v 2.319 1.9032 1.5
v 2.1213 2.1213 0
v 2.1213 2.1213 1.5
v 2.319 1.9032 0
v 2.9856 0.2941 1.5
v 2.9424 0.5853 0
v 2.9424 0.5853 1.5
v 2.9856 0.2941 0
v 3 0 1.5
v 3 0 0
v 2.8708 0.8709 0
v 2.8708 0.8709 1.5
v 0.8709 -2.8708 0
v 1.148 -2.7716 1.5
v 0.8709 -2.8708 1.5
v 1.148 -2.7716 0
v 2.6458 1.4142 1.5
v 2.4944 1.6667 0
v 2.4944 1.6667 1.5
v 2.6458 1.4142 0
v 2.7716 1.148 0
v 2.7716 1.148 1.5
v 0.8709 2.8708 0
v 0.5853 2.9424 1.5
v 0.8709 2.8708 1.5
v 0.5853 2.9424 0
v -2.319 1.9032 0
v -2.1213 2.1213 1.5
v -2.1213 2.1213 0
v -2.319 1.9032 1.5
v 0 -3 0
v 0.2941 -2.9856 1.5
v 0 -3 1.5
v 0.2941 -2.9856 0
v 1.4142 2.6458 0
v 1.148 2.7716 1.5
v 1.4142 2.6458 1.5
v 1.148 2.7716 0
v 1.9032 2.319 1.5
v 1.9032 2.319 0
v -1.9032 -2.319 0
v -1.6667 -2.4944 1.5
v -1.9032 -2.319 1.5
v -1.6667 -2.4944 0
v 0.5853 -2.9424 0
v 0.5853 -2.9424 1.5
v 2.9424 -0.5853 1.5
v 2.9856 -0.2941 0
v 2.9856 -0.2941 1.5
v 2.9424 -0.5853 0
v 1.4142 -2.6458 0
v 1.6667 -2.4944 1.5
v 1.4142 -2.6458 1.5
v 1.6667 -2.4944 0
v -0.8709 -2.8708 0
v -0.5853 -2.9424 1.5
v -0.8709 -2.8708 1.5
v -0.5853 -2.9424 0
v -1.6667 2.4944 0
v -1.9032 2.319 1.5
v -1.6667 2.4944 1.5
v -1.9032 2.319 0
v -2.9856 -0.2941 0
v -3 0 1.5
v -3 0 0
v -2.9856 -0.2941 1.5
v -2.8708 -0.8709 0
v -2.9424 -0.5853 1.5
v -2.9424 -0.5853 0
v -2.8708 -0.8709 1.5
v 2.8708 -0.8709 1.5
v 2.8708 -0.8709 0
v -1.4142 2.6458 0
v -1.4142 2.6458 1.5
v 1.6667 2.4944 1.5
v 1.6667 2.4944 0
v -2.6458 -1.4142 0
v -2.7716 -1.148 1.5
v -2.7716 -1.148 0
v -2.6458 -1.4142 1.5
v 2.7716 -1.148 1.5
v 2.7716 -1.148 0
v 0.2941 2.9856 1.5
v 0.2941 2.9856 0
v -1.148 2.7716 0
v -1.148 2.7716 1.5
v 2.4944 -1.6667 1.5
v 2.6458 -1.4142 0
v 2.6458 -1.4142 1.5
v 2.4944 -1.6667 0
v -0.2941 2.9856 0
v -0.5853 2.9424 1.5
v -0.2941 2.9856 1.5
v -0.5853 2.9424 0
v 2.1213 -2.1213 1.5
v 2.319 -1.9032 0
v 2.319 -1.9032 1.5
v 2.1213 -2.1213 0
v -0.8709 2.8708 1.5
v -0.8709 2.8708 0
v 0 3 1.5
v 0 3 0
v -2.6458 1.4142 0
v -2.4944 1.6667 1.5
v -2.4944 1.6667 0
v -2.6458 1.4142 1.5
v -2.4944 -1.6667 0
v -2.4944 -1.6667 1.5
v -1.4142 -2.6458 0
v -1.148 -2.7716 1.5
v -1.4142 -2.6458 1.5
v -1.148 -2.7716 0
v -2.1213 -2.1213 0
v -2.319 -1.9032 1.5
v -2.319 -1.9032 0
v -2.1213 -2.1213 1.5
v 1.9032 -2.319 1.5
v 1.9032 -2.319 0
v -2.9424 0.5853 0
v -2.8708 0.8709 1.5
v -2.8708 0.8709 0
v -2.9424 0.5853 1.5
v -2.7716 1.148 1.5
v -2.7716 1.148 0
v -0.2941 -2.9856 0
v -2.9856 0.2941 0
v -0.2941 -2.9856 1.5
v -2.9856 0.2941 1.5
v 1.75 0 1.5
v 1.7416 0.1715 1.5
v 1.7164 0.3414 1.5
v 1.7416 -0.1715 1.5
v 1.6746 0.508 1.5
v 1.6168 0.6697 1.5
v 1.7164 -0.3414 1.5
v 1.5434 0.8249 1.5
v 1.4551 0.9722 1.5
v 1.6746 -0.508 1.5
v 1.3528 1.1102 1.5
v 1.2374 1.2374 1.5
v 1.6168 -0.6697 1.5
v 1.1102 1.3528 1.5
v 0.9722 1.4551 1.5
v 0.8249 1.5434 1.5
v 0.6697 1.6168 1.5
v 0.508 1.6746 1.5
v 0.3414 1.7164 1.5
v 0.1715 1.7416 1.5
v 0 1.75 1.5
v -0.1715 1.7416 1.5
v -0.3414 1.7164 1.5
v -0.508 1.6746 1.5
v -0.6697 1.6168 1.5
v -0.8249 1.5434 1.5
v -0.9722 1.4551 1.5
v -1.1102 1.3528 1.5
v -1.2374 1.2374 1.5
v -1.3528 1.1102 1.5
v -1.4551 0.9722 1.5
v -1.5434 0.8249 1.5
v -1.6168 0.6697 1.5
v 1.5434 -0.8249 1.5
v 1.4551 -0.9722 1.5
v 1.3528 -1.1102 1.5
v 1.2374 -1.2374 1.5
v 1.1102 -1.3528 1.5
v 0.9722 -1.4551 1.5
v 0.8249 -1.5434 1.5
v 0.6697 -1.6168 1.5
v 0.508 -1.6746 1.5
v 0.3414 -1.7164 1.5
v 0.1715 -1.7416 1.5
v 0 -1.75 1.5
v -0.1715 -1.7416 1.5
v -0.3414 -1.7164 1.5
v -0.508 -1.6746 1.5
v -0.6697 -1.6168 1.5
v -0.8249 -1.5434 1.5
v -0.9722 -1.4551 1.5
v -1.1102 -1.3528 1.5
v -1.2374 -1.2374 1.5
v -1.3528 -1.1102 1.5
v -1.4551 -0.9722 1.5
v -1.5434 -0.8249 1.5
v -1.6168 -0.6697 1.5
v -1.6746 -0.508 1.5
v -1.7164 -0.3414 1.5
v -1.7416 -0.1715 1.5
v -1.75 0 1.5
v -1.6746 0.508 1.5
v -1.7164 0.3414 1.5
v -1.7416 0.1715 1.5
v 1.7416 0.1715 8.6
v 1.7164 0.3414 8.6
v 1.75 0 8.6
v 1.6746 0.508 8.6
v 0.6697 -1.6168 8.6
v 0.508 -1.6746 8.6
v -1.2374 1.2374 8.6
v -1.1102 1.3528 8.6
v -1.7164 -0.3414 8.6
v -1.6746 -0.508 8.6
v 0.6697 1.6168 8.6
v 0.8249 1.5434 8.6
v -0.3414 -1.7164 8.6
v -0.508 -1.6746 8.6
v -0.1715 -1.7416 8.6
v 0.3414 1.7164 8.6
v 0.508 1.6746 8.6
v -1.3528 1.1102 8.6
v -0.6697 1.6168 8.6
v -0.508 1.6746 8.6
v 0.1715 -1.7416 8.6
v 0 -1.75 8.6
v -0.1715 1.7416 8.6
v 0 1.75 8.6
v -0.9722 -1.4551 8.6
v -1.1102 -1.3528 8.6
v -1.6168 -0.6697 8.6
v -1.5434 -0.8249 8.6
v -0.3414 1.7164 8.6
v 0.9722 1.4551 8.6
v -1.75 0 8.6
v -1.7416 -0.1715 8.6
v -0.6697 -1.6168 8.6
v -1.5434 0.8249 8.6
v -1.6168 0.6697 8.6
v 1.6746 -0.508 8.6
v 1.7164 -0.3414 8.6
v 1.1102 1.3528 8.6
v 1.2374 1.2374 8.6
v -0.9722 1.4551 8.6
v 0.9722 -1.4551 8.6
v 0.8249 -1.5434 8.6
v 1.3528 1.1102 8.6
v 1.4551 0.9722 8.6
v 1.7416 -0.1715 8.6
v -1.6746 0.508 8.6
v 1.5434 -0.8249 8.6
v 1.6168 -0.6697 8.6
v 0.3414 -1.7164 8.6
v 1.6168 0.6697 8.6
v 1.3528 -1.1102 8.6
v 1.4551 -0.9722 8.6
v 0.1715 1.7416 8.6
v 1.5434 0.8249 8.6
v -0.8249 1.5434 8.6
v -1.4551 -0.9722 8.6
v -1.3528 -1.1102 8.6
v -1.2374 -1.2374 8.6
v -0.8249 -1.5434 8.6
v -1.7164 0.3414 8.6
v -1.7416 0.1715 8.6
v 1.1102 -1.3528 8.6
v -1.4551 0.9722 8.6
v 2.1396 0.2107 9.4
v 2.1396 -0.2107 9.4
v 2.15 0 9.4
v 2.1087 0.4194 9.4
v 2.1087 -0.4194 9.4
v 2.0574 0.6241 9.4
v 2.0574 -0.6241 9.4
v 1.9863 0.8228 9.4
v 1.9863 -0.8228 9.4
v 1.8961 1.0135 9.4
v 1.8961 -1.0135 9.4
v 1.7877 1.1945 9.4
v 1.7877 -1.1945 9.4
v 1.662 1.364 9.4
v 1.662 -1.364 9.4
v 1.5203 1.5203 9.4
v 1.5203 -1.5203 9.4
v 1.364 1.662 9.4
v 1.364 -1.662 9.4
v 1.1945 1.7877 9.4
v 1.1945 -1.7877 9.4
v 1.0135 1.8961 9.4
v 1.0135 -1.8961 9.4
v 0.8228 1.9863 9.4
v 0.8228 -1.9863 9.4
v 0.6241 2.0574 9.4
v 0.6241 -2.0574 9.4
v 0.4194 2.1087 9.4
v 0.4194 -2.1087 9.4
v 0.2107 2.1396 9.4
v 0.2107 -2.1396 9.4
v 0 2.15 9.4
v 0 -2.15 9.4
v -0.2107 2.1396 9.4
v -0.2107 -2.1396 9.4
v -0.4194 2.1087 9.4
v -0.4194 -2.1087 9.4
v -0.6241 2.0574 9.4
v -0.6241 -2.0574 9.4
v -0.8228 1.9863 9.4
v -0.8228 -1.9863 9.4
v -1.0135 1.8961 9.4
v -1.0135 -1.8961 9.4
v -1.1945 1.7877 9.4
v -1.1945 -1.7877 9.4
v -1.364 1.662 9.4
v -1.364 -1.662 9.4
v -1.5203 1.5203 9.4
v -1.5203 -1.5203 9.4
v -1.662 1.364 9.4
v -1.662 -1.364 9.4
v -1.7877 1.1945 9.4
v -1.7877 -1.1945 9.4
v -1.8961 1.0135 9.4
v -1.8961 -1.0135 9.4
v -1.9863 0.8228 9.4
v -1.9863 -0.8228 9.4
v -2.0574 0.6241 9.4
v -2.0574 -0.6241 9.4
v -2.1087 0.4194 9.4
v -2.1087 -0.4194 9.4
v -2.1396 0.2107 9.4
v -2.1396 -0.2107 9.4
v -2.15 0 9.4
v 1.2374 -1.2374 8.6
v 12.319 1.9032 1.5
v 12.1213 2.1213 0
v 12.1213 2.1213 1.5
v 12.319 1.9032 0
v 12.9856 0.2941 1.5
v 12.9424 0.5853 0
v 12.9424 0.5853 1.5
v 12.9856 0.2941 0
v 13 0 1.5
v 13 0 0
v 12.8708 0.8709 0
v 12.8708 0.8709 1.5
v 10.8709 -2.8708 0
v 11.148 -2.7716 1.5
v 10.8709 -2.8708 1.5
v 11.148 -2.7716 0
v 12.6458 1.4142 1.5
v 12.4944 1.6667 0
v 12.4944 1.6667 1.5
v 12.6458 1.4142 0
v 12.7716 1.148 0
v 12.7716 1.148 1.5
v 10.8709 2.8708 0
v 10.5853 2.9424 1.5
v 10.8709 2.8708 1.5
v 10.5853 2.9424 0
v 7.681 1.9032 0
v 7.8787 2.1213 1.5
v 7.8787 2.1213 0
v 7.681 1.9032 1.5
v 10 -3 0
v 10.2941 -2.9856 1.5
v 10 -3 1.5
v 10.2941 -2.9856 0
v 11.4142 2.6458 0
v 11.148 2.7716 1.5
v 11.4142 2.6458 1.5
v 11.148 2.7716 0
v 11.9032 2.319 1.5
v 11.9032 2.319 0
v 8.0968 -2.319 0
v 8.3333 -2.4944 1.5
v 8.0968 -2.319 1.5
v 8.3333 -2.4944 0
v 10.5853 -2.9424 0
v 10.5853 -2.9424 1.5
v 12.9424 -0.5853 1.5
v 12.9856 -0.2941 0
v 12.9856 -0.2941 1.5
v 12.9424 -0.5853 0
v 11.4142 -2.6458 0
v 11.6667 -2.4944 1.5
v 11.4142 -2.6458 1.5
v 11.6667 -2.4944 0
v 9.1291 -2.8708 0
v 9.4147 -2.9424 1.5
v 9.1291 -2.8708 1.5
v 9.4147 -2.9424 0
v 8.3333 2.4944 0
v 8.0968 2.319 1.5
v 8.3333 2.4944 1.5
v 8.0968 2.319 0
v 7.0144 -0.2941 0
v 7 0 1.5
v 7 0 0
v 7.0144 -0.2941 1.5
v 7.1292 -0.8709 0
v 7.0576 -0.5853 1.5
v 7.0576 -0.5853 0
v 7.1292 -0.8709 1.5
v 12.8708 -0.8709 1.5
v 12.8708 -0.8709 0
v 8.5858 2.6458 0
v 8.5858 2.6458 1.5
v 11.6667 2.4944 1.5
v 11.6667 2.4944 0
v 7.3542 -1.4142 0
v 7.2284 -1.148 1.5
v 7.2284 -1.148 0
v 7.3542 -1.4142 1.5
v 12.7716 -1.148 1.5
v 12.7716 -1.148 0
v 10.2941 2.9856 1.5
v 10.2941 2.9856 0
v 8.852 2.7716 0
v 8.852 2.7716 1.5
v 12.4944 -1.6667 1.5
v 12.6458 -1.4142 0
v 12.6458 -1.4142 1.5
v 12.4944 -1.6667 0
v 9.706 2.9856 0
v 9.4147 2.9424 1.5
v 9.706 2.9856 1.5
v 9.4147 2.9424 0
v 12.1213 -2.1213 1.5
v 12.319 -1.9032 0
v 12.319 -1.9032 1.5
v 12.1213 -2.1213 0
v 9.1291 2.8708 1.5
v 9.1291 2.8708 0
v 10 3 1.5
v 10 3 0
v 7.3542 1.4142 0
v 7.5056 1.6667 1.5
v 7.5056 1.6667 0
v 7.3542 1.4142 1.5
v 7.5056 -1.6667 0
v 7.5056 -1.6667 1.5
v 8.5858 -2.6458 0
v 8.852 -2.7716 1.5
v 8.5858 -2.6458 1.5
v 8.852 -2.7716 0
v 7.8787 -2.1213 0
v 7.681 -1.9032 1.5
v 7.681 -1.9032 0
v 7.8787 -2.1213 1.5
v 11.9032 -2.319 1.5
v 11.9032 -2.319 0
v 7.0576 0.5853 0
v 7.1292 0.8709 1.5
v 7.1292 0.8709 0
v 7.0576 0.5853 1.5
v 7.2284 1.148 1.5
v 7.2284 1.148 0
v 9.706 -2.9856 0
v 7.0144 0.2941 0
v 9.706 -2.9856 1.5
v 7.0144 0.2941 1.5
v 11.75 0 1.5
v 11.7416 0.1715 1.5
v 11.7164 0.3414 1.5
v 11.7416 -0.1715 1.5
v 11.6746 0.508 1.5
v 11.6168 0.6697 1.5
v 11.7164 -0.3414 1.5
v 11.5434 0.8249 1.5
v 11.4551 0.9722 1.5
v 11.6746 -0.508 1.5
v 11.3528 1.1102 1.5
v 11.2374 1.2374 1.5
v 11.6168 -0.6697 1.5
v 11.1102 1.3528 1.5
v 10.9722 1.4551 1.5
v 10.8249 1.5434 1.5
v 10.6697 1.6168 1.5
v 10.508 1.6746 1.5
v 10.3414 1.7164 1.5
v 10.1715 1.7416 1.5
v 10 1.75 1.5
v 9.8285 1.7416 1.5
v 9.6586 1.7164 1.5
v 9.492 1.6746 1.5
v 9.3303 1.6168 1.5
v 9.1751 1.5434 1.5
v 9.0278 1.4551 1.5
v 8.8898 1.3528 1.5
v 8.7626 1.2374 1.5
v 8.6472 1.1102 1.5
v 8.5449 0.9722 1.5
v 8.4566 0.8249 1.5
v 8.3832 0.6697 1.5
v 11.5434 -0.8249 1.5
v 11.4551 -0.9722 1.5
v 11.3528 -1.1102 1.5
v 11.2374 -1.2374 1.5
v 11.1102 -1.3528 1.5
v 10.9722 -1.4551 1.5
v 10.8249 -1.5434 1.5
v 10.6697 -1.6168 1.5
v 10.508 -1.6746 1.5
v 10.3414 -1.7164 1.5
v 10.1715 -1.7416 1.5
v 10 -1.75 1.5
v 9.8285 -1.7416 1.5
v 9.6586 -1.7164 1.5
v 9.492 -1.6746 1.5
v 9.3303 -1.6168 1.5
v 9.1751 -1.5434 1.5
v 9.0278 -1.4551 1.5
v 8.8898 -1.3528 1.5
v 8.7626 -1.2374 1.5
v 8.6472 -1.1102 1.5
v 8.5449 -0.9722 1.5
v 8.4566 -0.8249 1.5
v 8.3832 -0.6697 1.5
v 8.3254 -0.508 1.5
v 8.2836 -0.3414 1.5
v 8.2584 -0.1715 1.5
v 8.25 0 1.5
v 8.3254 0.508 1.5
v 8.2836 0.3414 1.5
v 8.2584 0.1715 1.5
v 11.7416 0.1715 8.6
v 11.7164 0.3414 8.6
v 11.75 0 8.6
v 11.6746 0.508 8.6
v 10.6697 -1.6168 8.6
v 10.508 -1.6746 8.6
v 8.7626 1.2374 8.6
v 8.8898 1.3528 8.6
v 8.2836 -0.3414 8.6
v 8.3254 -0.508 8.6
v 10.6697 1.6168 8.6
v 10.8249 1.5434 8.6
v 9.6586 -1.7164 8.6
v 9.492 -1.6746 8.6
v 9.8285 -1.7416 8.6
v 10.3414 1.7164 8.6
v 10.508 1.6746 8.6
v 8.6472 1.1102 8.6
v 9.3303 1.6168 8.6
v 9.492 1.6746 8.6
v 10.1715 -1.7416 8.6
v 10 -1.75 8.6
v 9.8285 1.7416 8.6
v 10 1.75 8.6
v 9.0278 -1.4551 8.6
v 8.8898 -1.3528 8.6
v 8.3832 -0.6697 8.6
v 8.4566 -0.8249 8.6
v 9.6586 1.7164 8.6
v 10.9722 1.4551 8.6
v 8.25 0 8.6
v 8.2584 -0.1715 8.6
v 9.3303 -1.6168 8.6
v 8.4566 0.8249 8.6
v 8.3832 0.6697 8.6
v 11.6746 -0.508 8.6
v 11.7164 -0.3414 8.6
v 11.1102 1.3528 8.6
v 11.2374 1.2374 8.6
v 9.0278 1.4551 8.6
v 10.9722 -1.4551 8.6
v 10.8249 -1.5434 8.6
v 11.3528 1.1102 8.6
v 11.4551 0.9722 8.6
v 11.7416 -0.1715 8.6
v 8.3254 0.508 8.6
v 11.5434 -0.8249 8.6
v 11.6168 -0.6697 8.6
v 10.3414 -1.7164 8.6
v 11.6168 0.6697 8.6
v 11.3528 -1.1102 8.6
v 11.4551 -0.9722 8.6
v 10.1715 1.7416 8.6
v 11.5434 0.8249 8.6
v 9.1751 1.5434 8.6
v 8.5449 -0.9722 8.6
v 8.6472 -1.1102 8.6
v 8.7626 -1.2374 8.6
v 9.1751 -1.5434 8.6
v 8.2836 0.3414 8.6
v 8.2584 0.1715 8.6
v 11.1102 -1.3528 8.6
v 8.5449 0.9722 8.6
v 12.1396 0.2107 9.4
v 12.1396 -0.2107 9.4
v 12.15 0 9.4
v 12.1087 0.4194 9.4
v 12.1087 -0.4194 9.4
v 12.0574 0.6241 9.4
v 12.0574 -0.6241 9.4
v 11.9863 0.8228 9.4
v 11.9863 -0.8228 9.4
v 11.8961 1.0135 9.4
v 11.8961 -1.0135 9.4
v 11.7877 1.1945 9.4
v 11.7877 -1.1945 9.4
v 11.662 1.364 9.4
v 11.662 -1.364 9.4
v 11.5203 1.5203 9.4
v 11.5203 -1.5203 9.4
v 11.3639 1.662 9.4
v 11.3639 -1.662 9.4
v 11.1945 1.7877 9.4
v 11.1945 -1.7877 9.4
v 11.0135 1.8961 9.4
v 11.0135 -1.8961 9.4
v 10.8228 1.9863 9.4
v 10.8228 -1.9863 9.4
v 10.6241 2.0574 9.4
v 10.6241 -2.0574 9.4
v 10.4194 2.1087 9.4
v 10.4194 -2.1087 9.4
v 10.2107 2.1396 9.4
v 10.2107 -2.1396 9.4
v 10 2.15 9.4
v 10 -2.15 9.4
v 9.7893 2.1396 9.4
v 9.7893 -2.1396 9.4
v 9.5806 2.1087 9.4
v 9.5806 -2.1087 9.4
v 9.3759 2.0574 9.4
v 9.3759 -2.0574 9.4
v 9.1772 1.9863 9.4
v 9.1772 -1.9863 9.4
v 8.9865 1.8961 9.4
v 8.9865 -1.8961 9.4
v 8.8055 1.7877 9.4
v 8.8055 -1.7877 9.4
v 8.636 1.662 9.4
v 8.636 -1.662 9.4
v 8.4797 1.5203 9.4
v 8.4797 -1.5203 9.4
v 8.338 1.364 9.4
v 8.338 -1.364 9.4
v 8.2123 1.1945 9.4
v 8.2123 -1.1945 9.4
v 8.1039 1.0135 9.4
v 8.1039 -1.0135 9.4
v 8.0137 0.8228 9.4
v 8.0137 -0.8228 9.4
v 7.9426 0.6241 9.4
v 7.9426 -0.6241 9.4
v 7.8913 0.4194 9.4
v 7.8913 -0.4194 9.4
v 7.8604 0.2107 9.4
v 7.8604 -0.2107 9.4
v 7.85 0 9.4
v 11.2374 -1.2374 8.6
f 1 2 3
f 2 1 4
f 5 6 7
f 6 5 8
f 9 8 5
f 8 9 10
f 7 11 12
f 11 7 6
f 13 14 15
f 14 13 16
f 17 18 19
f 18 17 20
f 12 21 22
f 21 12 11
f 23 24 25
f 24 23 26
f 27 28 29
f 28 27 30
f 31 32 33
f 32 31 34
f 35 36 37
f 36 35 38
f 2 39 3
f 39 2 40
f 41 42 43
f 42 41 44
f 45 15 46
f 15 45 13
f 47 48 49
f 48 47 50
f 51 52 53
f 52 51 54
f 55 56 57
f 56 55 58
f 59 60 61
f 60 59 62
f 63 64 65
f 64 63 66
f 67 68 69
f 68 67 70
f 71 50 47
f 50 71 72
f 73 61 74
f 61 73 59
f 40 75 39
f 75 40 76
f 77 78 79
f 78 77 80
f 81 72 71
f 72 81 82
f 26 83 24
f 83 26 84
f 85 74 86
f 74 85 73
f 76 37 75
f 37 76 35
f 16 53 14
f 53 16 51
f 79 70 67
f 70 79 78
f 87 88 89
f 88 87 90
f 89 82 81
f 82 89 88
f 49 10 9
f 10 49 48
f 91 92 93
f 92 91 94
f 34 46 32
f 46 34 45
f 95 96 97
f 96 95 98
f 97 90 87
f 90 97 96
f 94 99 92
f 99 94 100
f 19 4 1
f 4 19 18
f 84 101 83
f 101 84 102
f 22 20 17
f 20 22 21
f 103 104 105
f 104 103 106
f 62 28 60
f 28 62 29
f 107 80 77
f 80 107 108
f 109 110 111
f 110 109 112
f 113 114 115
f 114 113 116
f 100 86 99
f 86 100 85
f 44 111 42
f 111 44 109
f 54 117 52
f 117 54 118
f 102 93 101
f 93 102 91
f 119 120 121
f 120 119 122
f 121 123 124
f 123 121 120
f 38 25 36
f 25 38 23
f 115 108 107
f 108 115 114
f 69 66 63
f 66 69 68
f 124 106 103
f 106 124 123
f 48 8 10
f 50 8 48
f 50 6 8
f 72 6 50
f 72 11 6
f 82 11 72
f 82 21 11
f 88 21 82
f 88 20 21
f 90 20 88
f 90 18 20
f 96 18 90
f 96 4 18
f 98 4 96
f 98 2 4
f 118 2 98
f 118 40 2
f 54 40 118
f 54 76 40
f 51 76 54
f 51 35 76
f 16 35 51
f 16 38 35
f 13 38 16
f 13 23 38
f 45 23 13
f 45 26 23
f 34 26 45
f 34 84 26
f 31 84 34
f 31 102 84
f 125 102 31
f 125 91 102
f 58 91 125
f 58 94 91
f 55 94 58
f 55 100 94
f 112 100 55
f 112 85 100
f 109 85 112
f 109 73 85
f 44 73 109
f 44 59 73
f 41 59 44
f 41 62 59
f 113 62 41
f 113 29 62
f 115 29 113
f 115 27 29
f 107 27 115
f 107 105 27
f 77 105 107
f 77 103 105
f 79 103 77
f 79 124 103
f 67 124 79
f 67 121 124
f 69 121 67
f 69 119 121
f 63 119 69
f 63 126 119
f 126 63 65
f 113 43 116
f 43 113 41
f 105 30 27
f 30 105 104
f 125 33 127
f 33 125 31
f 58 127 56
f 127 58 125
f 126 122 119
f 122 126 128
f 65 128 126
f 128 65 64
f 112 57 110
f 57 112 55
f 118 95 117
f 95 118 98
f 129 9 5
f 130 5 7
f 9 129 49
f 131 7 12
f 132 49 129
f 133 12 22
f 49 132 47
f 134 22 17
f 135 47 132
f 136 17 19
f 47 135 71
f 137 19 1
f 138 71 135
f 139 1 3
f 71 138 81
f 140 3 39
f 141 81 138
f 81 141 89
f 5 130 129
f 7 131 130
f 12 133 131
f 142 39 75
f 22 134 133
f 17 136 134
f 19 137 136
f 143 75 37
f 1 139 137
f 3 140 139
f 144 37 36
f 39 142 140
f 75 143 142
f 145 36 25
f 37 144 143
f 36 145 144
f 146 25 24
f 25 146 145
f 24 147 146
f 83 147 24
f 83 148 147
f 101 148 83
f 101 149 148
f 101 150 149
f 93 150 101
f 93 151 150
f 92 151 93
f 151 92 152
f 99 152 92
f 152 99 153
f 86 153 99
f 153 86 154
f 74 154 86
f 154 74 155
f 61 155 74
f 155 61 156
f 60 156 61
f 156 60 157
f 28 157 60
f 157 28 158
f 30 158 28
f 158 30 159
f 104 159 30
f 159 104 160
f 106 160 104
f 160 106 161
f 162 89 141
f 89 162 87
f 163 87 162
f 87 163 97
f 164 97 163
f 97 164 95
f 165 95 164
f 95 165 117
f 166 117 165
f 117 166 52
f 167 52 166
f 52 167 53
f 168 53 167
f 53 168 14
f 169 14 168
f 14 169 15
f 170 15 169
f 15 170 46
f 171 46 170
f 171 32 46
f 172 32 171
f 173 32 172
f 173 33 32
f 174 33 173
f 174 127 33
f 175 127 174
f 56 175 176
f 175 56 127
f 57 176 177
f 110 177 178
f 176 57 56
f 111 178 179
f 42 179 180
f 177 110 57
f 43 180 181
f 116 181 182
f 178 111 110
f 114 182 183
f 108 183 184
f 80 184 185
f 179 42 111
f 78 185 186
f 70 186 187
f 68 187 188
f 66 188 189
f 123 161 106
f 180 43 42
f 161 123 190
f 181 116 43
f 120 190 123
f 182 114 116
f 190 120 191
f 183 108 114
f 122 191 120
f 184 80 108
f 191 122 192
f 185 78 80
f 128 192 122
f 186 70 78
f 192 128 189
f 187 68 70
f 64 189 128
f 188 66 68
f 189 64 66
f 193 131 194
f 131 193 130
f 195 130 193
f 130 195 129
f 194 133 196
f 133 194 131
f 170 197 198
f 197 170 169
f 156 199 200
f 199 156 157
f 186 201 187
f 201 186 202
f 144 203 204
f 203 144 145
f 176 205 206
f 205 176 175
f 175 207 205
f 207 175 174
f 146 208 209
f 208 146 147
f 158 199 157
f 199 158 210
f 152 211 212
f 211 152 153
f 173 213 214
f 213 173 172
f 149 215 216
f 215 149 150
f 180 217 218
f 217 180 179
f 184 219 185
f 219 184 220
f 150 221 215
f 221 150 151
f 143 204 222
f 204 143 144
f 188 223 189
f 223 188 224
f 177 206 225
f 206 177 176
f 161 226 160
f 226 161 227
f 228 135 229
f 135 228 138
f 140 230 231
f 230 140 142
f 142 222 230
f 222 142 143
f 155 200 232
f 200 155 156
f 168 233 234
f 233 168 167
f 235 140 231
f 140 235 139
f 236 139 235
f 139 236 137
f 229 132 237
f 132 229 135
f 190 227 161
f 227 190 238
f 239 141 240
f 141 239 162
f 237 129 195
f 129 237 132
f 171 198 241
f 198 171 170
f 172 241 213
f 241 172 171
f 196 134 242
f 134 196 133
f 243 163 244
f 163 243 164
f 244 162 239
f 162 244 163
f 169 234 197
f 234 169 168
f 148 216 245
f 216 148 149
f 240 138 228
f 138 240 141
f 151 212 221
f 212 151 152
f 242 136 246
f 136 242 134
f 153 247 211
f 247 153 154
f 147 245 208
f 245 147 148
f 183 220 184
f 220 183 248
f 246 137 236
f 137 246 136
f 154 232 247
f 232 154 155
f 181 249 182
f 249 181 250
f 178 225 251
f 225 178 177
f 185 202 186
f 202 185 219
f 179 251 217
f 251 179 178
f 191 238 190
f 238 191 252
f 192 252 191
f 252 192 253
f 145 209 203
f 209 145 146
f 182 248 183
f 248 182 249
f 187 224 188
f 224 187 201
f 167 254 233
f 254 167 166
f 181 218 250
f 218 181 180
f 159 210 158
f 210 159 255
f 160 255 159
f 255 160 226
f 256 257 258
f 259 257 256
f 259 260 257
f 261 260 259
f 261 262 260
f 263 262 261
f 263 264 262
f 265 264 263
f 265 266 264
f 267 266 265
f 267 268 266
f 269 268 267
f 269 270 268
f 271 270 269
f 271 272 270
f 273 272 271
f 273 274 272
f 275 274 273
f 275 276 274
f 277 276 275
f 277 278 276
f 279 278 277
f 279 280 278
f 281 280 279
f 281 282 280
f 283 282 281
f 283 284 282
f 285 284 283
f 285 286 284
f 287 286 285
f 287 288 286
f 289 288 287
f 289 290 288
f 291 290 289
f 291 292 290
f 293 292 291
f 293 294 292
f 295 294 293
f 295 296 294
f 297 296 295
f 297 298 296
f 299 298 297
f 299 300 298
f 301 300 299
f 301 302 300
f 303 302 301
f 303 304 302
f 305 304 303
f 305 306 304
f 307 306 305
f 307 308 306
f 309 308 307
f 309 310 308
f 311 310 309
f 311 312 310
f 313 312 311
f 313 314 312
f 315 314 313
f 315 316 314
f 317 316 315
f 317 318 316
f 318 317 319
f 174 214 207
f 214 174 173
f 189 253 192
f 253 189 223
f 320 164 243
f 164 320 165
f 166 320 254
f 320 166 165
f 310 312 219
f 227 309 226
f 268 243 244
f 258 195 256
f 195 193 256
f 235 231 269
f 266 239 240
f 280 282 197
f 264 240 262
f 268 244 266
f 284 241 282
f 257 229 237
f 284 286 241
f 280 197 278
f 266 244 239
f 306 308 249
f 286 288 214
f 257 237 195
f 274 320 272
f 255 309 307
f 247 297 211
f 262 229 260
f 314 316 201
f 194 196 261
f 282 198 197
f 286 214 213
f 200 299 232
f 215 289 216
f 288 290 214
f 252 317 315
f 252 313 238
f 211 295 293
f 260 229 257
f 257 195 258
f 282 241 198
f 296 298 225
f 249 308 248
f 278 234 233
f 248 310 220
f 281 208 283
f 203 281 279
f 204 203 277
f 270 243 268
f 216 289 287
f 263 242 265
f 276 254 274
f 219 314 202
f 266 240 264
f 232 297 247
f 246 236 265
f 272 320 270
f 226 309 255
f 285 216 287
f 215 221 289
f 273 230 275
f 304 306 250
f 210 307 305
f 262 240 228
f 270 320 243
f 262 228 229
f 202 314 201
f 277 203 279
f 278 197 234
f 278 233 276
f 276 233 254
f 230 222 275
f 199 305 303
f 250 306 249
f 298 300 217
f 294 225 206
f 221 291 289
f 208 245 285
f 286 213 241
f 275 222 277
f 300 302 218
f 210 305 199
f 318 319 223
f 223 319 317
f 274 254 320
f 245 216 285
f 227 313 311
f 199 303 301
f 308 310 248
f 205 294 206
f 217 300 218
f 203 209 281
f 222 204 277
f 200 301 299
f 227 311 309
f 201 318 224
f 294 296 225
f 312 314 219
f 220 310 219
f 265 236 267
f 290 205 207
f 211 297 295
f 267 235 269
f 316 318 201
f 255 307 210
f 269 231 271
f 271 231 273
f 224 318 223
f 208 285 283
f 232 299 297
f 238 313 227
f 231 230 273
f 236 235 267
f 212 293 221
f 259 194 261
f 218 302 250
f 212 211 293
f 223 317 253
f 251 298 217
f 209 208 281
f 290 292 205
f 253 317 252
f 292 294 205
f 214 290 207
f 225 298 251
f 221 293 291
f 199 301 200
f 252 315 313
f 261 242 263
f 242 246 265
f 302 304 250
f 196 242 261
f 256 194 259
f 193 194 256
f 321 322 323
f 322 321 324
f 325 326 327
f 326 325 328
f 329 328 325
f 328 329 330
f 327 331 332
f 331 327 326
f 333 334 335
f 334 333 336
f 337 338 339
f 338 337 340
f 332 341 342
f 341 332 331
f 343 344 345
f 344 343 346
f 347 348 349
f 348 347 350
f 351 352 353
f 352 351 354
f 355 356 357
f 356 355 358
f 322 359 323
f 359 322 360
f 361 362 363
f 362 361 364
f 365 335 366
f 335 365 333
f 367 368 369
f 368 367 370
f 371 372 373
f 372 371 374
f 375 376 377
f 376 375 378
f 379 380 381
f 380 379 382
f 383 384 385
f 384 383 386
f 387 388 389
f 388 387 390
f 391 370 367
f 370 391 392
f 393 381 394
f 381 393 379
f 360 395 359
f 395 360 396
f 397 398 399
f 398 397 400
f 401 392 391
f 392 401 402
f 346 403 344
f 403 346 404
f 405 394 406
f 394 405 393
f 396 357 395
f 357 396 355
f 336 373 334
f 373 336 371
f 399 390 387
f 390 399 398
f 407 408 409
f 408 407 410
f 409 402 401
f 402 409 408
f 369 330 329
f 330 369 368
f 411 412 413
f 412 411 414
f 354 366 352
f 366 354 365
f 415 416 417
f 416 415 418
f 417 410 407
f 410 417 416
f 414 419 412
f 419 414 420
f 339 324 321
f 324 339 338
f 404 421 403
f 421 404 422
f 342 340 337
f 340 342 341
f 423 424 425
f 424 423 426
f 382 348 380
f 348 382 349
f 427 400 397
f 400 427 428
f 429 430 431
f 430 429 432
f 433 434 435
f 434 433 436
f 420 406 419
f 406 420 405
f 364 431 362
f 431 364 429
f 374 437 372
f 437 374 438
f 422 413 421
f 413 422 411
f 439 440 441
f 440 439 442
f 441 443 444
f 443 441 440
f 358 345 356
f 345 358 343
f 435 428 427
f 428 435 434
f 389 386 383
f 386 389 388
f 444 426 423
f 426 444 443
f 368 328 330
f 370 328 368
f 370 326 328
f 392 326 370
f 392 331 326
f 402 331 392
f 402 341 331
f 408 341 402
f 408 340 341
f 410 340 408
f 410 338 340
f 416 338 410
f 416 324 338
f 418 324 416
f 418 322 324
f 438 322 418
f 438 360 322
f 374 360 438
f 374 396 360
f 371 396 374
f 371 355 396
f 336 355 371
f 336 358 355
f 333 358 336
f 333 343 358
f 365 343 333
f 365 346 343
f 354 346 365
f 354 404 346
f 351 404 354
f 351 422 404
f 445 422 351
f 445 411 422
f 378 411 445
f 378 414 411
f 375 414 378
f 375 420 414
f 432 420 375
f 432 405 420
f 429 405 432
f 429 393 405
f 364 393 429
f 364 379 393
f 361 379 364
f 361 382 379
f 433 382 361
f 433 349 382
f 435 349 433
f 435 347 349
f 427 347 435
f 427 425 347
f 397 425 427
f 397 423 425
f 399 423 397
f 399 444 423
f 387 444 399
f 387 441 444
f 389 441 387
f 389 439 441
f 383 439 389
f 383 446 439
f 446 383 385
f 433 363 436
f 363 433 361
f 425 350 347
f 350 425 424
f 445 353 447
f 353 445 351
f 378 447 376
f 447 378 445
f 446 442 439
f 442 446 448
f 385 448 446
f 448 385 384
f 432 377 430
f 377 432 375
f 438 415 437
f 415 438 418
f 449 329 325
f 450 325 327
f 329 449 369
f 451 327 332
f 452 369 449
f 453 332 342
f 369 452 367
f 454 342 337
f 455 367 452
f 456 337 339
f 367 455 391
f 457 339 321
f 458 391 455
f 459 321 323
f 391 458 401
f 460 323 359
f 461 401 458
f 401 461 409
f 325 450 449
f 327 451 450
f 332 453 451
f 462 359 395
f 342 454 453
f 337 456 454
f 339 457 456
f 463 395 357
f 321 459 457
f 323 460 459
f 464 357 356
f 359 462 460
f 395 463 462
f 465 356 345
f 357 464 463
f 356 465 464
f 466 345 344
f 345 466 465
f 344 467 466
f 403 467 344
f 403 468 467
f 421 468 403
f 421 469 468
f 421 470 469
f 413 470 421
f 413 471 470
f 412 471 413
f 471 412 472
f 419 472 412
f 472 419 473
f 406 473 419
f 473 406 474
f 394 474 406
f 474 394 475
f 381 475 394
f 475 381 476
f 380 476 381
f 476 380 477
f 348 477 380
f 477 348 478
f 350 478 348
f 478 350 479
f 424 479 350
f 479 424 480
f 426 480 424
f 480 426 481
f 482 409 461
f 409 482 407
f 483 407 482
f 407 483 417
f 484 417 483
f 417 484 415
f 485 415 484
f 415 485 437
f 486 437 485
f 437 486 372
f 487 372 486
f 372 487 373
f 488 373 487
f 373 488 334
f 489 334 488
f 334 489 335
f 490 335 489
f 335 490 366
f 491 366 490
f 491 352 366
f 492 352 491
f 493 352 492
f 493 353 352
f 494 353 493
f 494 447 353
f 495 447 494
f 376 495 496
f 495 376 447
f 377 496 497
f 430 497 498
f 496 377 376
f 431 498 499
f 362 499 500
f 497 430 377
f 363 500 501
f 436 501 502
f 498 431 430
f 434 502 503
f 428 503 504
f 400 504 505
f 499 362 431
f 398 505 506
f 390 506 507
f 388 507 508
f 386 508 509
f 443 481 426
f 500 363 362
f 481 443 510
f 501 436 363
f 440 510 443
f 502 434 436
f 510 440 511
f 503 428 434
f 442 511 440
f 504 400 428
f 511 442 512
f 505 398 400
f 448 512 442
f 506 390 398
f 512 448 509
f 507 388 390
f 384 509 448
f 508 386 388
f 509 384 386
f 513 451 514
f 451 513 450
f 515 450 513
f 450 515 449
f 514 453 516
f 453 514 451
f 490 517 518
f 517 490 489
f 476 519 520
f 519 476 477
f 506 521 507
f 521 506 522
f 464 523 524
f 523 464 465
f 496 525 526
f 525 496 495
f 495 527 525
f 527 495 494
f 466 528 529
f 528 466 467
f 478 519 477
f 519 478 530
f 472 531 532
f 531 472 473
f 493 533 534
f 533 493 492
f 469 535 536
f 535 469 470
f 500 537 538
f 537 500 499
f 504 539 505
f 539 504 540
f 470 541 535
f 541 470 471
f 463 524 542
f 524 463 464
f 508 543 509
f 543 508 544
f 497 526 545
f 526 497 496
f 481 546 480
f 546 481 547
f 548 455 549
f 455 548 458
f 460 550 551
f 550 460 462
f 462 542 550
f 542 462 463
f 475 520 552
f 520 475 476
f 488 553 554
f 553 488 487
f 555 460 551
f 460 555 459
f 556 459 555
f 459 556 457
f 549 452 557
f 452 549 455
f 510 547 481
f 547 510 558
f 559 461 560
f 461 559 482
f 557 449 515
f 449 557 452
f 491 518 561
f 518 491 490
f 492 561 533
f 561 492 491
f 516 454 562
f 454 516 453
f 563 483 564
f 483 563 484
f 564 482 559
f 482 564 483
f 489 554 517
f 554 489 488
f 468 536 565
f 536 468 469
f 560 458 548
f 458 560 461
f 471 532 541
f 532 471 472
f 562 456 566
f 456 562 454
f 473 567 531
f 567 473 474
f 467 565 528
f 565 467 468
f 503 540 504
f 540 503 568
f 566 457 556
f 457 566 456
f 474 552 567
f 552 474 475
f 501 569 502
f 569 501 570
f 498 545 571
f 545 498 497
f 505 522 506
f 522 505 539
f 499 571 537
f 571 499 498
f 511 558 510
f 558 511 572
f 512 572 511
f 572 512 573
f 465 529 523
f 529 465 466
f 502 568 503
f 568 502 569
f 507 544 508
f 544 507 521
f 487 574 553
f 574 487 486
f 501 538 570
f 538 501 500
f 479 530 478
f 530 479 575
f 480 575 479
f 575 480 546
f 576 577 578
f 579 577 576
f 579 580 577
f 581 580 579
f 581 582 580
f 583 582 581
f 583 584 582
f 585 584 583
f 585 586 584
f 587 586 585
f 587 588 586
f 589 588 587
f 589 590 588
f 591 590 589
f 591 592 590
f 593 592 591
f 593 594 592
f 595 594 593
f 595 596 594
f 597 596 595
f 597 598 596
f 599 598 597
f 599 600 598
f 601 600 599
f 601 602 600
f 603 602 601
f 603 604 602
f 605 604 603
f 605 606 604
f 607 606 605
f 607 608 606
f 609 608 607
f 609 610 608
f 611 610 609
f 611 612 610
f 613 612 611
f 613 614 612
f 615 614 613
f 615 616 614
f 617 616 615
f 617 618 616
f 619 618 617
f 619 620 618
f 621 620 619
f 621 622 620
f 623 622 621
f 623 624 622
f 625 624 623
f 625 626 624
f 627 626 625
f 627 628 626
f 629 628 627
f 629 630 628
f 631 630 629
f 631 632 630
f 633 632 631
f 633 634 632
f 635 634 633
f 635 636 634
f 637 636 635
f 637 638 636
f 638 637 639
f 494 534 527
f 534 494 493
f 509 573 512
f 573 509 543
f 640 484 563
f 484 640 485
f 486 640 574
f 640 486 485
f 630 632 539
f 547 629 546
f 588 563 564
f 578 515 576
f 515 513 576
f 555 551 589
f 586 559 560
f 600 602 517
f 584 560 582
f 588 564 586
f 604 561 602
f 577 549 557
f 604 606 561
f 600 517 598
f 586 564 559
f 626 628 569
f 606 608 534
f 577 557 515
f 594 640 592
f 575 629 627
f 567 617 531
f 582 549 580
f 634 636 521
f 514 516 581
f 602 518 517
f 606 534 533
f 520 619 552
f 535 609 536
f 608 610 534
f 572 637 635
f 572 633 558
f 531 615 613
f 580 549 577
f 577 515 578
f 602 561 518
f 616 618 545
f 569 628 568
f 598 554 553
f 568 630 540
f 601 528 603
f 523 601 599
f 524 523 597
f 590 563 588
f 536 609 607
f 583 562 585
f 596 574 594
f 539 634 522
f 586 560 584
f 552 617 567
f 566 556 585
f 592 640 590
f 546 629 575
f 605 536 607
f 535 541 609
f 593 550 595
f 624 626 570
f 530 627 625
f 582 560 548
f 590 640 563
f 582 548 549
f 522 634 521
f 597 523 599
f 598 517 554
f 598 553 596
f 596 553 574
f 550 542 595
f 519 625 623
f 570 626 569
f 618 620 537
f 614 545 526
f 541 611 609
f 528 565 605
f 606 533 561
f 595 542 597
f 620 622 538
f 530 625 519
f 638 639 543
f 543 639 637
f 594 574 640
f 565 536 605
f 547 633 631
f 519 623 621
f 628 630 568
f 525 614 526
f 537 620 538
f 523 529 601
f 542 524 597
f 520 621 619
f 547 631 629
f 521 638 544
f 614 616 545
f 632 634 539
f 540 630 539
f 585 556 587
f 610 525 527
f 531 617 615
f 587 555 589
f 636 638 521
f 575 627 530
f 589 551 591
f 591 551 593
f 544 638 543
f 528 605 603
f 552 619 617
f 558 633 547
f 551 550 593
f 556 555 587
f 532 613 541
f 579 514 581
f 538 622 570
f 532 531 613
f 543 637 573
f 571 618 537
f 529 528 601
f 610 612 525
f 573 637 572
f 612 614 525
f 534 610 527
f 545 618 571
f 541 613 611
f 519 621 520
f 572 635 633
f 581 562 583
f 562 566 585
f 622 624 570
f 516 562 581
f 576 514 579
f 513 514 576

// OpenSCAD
// =============================================================================
// SupaClock V2 - Button caps (FUNCIONAL, imprimible)
// Identico a V1 pero con stem mas largo para acomodar el gap mas grande
// entre la cara del switch y la pared interior del top case V2.
//
//   V1: case 90x71, pared interior en X=88, switch face en X=86.3
//       => air_gap_to_sw = 1.7mm, stem = 3.9mm
//   V2: case 98x79, pared interior en X=96, switch face en X=90.3
//       => air_gap_to_sw = 5.7mm, stem = 7.9mm
//
// El stem mas largo es mas fragil al imprimir vertical. Sugerencia: imprimir
// con la cara del flange apoyando en la base (sin soportes) y aumentar
// infill a 80-100% para mas rigidez. Si se quiebra mucho usar TPU 95A.
// =============================================================================

$fn = 64;
eps = 0.01;

// --- DEBE COINCIDIR CON EL TOP CASE V2 ---
hole_d           = 4.0;
wall_thickness   = 2.0;

// V2 geometry: case 98 wide, inner wall at X=96, switch face at X=90.3
// air_gap = inner_wall_X - switch_face_X = 96 - 90.3 = 5.7
air_gap_to_sw    = 5.7;

flange_d         = 6.0;
flange_h         = 1.5;
stem_d           = 3.5;
stem_h           = wall_thickness + air_gap_to_sw + 0.2;   // = 7.9

// Retencion permanente
retention_lip_h  = 0.8;
retention_lip_d  = 4.3;

// =============================================================================

module button_cap() {
    union() {
        cylinder(h = flange_h, d = flange_d);
        translate([0, 0, flange_h - eps])
            cylinder(h = stem_h + eps, d = stem_d);
        if (retention_lip_h > 0) {
            translate([0, 0, flange_h + stem_h - retention_lip_h])
                cylinder(h  = retention_lip_h,
                         d1 = stem_d,
                         d2 = retention_lip_d);
        }
    }
}

button_cap();
translate([flange_d + 4, 0, 0]) button_cap();
